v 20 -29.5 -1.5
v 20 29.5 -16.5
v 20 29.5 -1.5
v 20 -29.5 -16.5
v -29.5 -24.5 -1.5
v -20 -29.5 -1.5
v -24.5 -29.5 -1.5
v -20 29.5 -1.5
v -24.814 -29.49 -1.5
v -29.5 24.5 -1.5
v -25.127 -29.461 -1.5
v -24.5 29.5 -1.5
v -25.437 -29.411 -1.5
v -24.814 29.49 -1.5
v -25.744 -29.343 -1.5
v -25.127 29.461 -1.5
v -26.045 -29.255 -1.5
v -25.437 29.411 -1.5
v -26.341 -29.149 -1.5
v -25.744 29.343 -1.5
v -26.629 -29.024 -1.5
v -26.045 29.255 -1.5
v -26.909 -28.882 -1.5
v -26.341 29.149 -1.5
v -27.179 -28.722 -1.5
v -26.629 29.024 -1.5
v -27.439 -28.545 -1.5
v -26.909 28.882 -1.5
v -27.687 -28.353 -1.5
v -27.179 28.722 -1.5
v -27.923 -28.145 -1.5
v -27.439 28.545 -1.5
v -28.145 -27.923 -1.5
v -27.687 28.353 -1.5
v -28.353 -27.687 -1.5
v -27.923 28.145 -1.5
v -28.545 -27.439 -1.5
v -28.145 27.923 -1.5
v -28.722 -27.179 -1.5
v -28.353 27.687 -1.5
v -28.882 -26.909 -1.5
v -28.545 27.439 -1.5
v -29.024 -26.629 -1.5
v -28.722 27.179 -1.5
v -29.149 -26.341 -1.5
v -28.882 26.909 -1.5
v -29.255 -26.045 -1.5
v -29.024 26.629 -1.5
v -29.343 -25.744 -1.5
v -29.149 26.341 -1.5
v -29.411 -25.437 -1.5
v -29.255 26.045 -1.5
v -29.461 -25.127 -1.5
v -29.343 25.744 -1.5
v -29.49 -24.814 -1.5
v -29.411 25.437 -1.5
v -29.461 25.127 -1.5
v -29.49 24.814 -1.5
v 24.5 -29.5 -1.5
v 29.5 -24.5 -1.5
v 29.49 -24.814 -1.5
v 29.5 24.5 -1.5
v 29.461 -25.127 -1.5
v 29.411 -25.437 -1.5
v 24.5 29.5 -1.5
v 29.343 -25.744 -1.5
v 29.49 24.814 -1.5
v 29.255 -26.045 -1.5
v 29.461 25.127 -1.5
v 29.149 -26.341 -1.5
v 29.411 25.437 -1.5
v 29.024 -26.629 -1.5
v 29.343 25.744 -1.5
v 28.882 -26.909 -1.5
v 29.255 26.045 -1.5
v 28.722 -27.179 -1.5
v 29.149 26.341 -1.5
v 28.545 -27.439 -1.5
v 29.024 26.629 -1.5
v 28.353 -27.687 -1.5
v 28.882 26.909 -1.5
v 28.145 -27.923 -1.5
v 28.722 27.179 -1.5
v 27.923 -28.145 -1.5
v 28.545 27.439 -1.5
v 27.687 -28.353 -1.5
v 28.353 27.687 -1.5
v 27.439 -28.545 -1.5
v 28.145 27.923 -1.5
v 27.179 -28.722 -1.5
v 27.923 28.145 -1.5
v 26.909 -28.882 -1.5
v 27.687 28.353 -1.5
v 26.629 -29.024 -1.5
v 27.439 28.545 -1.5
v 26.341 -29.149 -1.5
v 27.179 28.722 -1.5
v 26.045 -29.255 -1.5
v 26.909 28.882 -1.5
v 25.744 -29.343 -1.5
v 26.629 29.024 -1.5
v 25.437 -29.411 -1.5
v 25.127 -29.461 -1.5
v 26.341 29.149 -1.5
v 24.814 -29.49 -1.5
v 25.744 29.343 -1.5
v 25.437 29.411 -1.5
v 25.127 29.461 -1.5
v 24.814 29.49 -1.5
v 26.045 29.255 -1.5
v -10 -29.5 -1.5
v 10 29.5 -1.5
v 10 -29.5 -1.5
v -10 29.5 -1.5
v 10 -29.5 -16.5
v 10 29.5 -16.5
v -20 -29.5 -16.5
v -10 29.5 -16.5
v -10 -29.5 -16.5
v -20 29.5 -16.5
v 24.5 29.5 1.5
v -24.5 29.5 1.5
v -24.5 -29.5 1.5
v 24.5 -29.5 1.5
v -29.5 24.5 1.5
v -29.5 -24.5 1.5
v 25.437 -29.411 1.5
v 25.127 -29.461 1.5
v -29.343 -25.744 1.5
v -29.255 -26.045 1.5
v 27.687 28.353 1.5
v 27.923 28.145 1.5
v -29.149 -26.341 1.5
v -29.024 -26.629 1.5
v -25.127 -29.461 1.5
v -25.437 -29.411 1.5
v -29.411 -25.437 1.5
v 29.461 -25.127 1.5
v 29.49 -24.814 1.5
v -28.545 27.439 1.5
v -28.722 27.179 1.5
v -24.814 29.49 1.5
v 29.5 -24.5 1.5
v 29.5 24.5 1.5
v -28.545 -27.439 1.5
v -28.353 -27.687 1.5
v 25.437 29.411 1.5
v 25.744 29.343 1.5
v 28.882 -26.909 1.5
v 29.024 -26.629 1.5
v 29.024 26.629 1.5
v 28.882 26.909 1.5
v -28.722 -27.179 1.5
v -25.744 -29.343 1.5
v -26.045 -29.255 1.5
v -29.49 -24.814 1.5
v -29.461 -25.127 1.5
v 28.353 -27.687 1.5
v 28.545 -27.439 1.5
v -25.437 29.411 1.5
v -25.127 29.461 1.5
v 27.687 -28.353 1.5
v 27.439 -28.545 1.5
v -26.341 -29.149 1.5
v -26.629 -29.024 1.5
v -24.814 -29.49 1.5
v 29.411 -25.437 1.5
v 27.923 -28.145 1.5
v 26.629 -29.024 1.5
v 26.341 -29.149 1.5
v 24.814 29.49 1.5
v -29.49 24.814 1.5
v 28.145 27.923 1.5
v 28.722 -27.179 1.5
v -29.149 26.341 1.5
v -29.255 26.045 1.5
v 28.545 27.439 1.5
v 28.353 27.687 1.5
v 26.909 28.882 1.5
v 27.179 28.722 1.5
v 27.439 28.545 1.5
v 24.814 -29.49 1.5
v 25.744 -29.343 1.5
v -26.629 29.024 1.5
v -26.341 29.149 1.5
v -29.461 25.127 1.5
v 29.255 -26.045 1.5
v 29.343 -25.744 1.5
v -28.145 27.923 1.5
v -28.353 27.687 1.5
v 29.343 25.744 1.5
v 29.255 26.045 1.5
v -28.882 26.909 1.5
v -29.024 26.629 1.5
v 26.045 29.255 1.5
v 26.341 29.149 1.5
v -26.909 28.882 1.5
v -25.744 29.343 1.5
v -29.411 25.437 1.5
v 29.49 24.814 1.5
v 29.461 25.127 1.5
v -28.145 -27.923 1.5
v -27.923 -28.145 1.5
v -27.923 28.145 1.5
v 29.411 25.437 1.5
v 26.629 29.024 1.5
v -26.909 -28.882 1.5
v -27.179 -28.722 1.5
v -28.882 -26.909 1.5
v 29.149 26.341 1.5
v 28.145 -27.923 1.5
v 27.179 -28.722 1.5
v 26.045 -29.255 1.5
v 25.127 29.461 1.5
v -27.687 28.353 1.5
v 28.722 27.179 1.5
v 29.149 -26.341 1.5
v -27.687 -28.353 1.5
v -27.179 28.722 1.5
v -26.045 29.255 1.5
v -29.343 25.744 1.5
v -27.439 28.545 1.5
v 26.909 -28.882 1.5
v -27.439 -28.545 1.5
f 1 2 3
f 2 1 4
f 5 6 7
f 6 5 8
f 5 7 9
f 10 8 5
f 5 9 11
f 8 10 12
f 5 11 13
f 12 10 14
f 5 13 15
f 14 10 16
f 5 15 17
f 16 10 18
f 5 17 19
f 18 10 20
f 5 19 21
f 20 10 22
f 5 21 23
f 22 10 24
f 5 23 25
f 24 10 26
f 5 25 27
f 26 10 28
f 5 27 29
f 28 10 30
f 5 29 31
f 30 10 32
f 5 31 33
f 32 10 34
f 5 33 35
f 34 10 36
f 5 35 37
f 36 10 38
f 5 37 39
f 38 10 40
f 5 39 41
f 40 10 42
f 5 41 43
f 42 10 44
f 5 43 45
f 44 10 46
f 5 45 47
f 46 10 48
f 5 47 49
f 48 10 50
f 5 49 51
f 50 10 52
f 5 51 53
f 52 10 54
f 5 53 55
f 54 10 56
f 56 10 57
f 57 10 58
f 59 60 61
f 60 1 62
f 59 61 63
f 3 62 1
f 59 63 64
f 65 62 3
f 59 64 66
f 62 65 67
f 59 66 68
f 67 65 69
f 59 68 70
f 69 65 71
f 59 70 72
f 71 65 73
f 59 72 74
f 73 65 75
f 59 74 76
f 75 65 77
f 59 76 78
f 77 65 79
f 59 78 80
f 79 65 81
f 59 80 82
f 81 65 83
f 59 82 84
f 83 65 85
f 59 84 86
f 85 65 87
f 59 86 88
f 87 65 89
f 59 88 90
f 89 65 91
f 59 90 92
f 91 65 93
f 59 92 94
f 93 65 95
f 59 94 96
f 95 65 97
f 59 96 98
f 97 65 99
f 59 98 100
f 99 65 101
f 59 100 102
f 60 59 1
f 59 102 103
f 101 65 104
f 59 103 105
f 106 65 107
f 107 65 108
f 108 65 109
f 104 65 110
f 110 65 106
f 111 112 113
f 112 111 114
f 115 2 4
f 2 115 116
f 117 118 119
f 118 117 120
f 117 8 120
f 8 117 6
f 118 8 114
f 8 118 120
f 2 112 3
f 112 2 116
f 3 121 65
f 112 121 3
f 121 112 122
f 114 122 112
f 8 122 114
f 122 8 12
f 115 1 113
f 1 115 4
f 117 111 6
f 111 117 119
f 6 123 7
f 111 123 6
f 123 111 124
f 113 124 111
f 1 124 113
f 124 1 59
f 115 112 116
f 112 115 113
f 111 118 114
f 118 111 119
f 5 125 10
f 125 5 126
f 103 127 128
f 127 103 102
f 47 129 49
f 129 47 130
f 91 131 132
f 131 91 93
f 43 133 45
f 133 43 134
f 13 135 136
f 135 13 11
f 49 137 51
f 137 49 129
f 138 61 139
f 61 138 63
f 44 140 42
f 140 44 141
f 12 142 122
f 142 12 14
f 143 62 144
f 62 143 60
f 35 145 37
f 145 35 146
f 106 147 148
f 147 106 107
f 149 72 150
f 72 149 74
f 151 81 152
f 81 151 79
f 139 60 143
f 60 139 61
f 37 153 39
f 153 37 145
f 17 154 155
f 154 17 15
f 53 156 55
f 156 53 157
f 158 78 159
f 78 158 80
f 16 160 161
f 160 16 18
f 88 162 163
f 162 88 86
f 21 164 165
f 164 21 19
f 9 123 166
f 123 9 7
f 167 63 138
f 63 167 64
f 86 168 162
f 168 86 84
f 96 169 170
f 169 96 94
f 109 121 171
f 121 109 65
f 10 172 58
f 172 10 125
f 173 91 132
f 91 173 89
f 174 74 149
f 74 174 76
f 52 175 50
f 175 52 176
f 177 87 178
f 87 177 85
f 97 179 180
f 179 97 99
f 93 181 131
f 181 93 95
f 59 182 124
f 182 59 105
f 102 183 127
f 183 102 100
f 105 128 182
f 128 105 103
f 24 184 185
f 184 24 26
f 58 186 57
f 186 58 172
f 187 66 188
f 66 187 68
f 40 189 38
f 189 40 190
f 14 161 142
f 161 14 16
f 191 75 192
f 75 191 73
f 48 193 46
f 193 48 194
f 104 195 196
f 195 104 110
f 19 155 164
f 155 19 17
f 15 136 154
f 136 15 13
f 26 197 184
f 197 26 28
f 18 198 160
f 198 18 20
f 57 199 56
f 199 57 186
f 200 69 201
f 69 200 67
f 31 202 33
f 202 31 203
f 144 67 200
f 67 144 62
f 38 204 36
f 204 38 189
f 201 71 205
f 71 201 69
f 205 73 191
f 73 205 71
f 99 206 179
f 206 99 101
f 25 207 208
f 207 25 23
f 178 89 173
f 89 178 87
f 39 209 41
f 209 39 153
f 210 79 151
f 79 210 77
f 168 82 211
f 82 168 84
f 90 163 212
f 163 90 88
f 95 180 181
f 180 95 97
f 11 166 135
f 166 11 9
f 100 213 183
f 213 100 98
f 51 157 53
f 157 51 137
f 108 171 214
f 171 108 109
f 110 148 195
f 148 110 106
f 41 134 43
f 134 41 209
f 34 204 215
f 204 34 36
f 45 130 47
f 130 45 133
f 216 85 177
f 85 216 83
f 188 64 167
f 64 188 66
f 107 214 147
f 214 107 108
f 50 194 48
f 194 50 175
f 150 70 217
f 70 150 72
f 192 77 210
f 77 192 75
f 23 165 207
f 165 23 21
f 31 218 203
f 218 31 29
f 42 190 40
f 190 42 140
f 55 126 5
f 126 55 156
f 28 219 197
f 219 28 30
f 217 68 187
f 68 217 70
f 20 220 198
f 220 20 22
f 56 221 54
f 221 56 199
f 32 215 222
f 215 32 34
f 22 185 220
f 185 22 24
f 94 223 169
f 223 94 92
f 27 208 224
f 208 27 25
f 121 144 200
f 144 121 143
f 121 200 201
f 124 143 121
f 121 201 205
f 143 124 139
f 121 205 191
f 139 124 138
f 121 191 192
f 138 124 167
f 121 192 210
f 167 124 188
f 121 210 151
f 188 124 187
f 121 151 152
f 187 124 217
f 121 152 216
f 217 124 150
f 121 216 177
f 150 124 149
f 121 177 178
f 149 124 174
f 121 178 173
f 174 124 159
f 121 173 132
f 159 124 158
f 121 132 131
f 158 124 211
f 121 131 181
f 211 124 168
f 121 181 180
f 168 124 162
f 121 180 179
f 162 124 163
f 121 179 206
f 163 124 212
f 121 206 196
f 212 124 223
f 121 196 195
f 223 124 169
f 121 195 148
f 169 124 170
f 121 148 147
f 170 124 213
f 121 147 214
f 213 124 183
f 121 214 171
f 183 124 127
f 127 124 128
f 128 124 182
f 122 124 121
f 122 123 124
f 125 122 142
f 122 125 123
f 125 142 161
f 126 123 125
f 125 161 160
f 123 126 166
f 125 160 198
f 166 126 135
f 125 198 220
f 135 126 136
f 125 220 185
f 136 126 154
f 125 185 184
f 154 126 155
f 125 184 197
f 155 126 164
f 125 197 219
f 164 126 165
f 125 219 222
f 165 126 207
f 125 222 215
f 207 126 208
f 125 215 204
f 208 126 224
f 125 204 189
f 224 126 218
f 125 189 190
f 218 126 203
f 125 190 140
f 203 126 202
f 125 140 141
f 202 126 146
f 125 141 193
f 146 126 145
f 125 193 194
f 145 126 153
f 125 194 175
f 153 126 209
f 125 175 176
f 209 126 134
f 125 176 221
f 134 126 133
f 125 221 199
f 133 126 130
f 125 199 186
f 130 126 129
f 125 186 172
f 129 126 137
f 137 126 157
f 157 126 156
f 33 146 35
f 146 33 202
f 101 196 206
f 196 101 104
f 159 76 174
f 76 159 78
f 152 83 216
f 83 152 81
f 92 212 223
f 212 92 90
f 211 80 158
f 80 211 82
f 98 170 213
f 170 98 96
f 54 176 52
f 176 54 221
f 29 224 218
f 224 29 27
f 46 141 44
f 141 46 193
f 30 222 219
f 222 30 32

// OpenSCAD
 
echo(version=version());

module roundedRect(size, radius) {  
  // https://en.wikibooks.org/wiki/OpenSCAD_User_Manual/2D_to_3D_Extrusion
	linear_extrude(height=size.z, center=true, $fn=100) {
		offset(radius) offset(-radius) {
			square([size.x, size.y], center = true);
		}
	}
}

/*
 * Board dims:
 * w: 56mm
 * l: 56mm
 */
// Base plate
// --------------
plateWidth = 56 + 3;
plateLength = 56 + 3;

plateThickNess = 3;
cornerRadius = 5;

// PlateTickness = Wall Thickness
mainPlateWidth  = plateWidth + (2 * plateThickNess);
mainPlateLength = plateLength + (2 * plateThickNess);

module loudSpeakerStand() {
  roundedRect([plateWidth, plateLength, plateThickNess], cornerRadius);
}

// The feet for the top of the monitor
monitorThickness = 20; // mm
monitorBorderHeight = 15; // mm
feetThickness = 10;

module topMonitorClamp() {
  difference() {
    cube(size=[
               monitorThickness + (2 * feetThickness),
               plateLength, 
               monitorBorderHeight ], center=true);
    cube(size=[
               monitorThickness,
               plateLength, 
               monitorBorderHeight ], center=true);
  }
}

union() {
  // Draw the raspberry. Show, or drill.
  loudSpeakerStand();
  translate([0, 0, -((plateThickNess + monitorBorderHeight) / 2)]) {
    topMonitorClamp();
  }
}
// That's it!
